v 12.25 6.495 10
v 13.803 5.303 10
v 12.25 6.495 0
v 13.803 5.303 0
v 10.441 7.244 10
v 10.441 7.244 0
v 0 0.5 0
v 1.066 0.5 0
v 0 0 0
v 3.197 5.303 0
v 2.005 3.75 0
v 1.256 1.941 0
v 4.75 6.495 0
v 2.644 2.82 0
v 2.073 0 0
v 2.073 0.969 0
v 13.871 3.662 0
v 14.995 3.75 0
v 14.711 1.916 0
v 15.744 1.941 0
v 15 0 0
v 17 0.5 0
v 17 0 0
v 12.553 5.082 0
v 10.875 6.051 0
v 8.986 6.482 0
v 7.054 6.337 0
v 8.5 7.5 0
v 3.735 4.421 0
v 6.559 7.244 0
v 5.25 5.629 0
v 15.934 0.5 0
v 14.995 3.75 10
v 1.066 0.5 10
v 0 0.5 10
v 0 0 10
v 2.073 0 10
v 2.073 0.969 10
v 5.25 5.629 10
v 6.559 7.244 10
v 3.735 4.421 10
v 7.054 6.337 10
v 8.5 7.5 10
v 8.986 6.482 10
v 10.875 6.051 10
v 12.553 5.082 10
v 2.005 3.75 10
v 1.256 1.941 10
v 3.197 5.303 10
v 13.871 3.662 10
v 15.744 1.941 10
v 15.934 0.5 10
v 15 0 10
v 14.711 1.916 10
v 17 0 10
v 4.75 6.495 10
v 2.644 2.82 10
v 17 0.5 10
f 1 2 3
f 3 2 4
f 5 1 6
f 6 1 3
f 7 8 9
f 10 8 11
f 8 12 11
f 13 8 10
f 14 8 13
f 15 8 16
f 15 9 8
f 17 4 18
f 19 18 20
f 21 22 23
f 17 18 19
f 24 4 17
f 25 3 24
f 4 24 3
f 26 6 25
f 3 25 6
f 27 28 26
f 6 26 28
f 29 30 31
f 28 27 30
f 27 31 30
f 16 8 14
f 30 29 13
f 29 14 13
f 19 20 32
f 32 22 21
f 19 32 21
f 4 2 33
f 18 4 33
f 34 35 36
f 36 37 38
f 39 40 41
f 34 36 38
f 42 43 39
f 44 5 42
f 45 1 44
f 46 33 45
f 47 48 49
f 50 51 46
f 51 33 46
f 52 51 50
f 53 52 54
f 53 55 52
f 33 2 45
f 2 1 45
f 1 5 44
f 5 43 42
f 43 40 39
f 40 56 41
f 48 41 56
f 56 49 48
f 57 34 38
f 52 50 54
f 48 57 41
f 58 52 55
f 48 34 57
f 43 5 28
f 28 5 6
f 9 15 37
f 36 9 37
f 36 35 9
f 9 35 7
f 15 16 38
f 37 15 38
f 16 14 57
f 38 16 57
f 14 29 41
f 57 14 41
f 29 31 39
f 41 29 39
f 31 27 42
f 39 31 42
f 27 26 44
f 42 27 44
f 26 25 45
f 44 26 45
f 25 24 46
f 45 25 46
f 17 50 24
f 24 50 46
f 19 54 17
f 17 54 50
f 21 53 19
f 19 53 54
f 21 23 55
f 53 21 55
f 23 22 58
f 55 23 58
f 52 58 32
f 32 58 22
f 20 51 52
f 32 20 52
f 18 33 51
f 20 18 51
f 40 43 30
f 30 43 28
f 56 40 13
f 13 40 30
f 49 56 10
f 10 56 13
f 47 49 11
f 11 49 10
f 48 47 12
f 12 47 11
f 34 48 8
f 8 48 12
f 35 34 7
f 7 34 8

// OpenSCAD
linear_extrude(height=10){
difference(){
	union(){
square([17,0.5],center=false);
translate([17/2,0,0])circle(r=15/2);

	}
translate([0,-20,0]) square([20,20],center=false);
translate([17/2,0,0])circle(r=15/2-1);
}
}
